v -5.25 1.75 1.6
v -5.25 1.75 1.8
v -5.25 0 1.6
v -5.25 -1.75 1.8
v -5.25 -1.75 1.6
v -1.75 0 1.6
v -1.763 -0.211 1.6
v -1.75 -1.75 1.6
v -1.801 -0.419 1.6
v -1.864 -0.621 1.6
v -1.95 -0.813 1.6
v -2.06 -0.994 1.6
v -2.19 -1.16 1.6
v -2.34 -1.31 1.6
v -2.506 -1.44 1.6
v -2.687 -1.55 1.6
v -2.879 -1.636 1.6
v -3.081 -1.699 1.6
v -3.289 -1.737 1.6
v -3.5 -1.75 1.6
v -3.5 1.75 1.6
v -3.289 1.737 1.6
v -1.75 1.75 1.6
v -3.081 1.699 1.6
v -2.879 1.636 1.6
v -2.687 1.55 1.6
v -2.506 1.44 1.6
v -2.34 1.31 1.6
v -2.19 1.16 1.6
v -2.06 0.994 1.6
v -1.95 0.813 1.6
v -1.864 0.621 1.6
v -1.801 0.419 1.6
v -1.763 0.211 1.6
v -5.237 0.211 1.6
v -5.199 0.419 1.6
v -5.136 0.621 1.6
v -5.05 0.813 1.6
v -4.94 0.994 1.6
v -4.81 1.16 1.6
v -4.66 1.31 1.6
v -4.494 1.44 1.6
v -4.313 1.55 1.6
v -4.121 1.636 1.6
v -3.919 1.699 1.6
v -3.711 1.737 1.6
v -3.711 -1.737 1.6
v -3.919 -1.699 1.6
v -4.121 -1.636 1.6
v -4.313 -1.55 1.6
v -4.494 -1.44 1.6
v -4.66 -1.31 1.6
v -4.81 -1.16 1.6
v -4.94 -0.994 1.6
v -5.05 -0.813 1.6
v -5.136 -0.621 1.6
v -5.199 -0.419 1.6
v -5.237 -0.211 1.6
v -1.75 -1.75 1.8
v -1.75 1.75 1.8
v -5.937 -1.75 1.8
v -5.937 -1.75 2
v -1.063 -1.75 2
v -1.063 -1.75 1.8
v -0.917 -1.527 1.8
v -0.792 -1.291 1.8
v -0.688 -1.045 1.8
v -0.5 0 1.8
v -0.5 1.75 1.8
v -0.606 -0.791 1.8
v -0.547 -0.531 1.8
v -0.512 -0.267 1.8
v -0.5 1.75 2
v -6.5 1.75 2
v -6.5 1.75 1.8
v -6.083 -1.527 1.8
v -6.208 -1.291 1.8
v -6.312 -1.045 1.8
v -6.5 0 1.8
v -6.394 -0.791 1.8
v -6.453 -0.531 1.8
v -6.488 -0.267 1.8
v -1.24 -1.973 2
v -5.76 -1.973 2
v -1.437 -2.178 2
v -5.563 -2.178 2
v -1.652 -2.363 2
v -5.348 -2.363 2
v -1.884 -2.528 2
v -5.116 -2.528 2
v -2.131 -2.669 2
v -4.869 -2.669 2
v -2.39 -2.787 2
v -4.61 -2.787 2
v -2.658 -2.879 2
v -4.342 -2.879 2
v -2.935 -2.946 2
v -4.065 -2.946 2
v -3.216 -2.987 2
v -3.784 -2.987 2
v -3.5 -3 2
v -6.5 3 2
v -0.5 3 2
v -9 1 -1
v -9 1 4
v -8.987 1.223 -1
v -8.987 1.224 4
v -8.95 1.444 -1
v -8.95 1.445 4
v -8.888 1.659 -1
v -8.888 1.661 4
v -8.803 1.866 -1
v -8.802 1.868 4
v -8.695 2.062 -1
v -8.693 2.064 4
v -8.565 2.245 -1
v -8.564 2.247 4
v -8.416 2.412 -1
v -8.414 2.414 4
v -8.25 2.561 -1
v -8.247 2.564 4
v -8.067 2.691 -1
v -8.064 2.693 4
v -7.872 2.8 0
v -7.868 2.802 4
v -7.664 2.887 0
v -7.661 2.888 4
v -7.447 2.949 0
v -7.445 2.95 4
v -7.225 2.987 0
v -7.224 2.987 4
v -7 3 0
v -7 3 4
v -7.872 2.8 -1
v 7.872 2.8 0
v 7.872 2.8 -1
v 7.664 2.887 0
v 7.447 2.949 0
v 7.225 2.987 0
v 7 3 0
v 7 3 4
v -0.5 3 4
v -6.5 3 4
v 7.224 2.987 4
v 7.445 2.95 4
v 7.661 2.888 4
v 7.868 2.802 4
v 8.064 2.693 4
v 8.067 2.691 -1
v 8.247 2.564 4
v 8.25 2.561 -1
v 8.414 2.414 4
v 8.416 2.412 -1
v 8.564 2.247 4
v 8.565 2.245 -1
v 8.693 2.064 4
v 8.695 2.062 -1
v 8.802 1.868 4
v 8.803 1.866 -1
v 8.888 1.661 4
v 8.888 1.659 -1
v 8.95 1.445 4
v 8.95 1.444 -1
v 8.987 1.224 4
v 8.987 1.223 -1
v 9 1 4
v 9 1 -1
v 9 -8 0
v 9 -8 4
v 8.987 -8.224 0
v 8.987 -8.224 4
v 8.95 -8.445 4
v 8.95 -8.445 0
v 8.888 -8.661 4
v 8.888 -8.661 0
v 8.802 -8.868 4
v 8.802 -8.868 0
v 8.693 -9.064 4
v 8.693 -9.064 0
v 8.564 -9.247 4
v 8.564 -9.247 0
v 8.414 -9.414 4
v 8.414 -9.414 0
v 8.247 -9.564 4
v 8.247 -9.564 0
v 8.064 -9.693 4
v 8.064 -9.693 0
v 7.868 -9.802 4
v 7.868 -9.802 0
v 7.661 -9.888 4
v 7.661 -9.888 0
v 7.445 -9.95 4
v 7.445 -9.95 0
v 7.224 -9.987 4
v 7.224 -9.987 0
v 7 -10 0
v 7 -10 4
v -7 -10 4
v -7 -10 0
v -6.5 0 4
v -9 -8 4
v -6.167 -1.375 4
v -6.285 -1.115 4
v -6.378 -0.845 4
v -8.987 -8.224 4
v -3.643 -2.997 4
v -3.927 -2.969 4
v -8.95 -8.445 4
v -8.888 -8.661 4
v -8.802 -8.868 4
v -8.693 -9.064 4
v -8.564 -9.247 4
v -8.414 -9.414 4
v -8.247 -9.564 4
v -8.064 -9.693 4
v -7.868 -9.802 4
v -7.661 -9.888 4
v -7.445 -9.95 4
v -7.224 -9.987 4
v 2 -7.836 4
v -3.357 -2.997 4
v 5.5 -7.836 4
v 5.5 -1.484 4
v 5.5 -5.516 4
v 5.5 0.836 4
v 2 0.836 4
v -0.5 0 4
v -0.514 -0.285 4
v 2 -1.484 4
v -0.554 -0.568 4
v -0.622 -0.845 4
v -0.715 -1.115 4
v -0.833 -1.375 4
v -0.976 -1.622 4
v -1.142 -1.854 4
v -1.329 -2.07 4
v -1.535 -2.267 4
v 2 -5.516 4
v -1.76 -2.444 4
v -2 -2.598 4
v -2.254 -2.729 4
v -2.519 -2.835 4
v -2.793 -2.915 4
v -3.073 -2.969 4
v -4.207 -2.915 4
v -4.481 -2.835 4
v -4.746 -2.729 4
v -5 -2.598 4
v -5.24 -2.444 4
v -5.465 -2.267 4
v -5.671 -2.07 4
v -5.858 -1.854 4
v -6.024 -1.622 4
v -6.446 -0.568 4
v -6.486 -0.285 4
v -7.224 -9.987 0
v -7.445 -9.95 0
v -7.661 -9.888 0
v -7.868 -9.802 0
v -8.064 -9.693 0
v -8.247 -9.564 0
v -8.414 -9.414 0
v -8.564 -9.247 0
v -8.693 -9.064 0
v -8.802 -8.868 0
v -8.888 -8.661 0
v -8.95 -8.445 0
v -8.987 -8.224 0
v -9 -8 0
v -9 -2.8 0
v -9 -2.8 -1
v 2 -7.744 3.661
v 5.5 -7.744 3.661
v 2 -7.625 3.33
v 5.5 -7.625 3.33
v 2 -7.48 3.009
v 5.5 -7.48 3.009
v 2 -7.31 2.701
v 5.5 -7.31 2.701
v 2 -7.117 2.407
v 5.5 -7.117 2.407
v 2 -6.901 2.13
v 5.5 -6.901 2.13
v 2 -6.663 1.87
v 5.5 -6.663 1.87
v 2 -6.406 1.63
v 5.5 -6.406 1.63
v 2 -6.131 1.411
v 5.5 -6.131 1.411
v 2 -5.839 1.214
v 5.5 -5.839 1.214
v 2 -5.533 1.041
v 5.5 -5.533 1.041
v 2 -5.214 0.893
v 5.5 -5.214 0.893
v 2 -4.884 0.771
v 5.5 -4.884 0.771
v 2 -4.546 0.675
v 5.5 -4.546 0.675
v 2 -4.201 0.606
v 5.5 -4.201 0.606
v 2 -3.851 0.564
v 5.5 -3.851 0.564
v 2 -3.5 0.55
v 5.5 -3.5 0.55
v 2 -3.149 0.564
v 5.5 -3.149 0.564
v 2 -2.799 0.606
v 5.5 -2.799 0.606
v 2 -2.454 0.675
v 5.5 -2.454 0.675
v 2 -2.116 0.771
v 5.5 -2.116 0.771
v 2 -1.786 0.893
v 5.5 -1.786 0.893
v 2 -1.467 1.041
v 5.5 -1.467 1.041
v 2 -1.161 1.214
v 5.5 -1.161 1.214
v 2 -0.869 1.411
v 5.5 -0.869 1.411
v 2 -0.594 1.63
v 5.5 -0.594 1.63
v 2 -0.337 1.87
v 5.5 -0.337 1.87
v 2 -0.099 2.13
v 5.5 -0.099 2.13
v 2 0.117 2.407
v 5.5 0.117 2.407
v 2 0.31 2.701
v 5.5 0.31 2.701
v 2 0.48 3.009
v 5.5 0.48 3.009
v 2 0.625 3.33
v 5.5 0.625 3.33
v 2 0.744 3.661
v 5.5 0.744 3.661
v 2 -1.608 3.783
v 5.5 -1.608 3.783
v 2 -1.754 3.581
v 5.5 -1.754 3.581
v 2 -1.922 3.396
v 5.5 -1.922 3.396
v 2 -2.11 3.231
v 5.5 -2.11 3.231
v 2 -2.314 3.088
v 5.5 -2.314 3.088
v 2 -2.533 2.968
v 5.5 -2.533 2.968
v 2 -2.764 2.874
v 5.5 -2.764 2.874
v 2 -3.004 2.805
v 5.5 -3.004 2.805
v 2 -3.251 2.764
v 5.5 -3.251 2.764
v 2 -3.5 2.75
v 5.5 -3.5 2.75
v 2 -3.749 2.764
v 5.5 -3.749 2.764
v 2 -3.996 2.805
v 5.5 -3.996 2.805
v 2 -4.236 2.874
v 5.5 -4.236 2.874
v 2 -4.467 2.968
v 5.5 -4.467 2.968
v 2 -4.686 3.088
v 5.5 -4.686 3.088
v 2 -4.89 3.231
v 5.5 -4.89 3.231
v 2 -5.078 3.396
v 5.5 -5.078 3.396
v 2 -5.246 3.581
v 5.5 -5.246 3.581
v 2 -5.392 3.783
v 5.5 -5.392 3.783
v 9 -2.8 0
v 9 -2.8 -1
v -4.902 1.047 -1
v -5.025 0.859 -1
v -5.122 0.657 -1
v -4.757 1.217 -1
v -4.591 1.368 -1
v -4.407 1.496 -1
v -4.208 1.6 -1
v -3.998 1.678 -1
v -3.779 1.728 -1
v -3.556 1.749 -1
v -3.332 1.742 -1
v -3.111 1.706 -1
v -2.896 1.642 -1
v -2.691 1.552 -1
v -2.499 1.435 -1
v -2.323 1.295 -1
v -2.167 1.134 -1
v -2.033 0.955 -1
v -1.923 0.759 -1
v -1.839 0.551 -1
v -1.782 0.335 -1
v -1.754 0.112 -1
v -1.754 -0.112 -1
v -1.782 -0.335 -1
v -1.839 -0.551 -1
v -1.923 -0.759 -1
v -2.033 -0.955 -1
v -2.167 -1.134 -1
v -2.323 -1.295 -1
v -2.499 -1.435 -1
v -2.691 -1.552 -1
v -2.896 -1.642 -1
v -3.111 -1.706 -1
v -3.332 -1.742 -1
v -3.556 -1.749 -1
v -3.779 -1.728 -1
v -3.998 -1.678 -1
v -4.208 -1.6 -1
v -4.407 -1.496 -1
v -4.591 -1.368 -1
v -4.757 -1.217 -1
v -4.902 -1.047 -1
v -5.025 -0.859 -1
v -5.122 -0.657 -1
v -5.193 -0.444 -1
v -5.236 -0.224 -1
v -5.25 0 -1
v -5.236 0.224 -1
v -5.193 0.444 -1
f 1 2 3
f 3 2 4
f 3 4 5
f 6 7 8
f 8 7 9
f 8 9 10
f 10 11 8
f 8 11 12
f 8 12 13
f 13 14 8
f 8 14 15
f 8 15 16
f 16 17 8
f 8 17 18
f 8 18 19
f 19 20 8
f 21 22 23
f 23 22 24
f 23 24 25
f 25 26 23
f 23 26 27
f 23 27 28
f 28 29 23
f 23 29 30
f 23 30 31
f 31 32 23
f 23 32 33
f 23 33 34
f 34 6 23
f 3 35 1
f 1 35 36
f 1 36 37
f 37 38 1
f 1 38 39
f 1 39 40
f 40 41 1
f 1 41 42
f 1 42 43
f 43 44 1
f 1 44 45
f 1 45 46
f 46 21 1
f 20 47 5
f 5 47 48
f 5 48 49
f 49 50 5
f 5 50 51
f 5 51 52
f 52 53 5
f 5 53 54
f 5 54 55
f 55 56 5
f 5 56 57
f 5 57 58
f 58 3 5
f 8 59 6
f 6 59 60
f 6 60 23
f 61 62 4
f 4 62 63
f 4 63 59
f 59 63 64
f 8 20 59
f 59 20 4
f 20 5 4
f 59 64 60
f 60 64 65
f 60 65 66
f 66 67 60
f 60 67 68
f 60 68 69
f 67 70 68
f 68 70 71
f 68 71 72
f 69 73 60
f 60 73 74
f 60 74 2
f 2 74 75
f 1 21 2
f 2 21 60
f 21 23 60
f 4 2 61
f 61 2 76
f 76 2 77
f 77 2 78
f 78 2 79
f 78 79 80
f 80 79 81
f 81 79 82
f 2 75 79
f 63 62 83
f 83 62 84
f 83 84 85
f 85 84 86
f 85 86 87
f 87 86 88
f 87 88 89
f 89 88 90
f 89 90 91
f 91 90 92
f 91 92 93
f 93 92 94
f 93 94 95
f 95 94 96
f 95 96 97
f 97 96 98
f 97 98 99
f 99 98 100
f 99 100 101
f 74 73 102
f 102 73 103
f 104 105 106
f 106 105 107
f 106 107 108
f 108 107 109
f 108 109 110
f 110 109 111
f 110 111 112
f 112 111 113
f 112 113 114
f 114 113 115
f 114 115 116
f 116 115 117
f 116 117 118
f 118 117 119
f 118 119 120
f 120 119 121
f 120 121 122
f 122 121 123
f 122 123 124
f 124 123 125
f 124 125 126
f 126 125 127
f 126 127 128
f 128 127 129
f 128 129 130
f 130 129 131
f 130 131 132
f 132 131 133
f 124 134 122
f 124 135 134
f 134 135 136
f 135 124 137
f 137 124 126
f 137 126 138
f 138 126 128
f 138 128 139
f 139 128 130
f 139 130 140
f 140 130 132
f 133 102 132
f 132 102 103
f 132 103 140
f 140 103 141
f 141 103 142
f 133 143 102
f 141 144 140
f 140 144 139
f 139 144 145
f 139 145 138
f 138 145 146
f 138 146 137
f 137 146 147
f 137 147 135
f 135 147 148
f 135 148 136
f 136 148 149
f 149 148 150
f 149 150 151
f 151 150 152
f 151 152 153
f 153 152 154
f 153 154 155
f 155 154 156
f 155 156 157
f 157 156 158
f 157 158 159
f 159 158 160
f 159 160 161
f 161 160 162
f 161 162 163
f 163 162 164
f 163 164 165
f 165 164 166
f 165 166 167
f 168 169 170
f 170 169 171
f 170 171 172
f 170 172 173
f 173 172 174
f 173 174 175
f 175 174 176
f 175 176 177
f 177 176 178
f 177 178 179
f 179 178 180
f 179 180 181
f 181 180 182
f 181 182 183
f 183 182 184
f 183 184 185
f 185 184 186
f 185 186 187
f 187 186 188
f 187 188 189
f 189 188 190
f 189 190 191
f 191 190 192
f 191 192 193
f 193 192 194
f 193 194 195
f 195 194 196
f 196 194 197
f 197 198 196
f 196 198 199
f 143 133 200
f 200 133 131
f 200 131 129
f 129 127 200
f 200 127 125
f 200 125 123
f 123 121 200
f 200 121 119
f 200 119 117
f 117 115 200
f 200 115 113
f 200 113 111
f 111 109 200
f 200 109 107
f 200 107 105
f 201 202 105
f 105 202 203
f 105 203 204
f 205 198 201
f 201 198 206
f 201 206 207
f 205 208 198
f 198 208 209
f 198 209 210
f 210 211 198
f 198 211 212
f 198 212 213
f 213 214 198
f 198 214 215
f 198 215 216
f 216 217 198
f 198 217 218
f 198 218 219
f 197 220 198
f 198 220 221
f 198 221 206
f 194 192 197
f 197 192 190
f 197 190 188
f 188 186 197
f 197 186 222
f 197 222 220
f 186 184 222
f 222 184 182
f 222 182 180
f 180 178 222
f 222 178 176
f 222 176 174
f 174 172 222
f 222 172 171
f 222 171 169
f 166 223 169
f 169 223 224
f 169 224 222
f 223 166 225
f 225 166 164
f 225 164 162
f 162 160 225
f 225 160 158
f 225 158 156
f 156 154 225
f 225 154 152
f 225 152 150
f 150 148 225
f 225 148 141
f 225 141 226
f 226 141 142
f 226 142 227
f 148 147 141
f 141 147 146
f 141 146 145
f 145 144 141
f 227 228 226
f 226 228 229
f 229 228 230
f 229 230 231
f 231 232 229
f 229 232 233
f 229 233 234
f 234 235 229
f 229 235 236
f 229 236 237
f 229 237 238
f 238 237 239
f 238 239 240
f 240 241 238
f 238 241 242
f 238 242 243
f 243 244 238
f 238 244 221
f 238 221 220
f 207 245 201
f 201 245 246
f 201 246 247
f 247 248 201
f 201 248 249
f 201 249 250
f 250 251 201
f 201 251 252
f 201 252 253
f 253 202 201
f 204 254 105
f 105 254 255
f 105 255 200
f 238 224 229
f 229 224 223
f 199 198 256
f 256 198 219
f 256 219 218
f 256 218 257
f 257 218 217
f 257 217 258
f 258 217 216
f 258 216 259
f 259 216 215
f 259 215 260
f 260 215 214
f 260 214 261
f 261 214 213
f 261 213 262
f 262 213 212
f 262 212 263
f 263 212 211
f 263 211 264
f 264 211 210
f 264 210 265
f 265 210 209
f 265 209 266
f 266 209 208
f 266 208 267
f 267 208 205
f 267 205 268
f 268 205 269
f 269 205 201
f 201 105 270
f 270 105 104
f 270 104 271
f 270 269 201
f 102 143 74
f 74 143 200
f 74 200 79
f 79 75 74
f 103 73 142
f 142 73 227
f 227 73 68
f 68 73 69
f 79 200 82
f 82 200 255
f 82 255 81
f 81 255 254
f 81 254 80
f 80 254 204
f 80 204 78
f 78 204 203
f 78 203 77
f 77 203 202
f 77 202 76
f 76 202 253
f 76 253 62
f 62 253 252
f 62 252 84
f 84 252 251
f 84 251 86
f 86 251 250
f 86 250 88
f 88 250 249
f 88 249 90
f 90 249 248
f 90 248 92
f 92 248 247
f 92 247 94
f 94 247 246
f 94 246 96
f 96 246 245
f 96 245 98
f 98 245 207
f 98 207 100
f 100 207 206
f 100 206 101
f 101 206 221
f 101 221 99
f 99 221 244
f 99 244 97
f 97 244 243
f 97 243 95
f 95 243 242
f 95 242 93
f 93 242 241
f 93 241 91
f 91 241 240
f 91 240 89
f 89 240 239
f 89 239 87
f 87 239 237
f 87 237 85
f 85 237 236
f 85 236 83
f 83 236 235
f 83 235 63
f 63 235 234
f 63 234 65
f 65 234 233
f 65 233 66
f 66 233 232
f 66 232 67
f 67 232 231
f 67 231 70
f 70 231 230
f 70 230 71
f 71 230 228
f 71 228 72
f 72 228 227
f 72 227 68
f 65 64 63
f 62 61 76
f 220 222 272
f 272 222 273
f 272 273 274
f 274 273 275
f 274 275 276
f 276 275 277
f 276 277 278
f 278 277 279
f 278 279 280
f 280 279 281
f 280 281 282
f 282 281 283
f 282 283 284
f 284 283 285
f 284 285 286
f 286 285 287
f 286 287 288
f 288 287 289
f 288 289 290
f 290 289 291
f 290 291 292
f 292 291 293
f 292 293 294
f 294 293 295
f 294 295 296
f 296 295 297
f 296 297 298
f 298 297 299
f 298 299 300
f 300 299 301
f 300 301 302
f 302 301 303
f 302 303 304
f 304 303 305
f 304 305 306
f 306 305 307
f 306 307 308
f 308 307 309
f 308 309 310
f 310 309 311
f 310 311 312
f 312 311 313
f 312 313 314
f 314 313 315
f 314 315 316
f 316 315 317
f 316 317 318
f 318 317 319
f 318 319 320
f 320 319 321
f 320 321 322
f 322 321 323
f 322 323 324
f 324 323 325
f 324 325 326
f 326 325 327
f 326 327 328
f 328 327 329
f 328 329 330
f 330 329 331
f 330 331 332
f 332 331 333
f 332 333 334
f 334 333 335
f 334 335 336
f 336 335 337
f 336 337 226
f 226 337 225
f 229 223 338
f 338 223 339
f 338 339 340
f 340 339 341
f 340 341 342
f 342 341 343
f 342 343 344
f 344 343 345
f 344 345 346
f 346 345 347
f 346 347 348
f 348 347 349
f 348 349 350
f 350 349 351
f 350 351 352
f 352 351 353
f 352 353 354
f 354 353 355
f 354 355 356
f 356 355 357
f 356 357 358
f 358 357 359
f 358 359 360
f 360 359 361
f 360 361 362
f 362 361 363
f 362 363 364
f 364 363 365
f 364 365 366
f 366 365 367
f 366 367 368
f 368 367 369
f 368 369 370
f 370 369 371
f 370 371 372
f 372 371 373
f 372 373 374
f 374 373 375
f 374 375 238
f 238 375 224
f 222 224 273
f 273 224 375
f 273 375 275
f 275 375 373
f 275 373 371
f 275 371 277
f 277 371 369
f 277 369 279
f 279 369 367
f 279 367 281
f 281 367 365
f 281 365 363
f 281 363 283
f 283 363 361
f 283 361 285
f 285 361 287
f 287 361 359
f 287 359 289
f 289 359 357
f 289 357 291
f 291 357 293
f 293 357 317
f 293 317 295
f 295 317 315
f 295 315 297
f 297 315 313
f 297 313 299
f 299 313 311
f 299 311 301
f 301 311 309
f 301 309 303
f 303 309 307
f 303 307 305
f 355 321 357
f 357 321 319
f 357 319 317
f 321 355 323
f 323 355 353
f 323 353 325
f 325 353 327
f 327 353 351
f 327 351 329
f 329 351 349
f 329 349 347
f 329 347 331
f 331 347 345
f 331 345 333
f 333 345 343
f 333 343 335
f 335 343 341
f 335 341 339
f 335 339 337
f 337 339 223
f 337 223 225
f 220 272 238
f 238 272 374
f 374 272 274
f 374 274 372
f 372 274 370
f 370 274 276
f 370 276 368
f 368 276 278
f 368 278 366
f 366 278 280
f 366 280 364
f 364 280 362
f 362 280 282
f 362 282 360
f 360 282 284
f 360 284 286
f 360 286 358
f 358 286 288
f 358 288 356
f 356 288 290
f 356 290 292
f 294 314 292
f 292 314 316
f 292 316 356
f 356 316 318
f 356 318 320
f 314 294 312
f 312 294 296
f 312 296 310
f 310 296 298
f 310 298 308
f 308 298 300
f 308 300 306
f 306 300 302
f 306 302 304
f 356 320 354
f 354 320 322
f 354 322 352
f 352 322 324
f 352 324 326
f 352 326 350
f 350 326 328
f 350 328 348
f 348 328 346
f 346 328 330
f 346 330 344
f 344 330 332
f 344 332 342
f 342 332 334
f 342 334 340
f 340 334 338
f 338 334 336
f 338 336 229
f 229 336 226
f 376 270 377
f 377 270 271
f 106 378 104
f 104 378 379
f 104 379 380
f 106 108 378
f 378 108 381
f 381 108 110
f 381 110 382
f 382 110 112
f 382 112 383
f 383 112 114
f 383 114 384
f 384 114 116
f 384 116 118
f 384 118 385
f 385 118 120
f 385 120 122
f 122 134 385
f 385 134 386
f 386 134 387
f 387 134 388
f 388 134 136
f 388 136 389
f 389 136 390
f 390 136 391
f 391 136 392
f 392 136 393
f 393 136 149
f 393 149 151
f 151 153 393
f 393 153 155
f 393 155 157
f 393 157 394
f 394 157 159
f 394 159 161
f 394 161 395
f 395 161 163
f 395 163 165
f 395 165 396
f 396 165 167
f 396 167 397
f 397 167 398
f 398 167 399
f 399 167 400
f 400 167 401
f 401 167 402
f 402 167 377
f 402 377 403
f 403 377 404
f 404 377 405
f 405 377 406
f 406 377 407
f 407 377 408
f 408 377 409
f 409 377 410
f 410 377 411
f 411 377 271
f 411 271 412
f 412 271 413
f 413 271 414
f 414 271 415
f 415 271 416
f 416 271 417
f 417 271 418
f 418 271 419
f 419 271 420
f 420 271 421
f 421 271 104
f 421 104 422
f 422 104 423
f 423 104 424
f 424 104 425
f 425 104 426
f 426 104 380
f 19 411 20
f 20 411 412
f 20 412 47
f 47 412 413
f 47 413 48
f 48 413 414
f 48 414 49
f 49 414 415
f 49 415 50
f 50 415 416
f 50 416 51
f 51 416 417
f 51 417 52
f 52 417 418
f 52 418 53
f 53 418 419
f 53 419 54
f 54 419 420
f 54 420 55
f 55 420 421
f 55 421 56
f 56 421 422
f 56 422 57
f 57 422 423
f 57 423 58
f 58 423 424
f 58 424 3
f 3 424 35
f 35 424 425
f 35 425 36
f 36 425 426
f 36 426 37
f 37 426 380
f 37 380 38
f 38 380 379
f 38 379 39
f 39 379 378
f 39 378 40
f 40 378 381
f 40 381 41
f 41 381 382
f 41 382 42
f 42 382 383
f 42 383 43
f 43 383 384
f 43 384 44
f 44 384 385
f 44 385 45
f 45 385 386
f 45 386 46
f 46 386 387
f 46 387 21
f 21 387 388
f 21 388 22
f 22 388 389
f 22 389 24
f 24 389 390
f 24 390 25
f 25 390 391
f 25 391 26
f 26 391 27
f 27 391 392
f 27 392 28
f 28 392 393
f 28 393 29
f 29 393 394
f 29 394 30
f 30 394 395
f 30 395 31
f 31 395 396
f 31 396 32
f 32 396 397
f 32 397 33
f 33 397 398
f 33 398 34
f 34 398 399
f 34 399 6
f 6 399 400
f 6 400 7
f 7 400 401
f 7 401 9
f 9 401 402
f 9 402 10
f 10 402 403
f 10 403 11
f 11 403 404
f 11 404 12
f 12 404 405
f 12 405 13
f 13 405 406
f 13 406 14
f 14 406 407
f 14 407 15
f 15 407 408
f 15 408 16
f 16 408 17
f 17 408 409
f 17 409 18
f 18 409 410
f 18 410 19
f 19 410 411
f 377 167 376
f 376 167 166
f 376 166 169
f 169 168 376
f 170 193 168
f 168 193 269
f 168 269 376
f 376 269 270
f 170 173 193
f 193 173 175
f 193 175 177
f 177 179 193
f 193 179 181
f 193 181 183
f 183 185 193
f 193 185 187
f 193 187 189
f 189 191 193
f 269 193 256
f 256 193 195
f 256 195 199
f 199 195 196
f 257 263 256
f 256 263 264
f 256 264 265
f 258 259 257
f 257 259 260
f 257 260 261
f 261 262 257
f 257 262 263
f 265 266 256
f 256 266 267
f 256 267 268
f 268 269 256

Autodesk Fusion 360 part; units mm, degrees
sketch "Sketch1" plane through (0, 0, 0) normal (0, 0, 1) x (1, 0, 0)
  line L0 (9, 3) -> (-9, 3)
  line L1 (-9, 3) -> (-9, -10)
  line L2 (-9, -10) -> (9, -10)
  line L3 (9, -10) -> (9, 3)
  circle A0 centre (-3.5, 0) radius 1.75
  circle A1 centre (-3.5, 0) radius 3
  line L4 (9, -2.8) -> (-9, -2.8)
  line L5 (-9, -2.8) -> (-9, 2.8)
  line L6 (-9, 2.8) -> (9, 2.8)
  line L7 (9, 2.8) -> (9, -2.8)
  line L8 (9, -2.8) -> (-9, 2.8) construction
  line L9 (-9, -2.8) -> (9, 2.8) construction
  dimension "d1" = 18
  dimension "d2" = 13
  dimension "d5" = 3.5
  dimension "d6" = 6
  dimension "d9" = 5.6
  dimension "d12" = 3.5
  dimension "d23" = 3
extrude "Extrude1" add sketch "Sketch1" along normal blind 2
extrude "Extrude2" add sketch "Sketch1" along normal blind 4 contours L0 L3 A1 L6 | L0 L1 A1 L6 | L3 A1 L4 L6 L7 | L1 A1 L4 L5 L6 | L1 L2 L3 A1 L4
extrude "Extrude3" add sketch "Sketch1" against normal blind 1 contours L3 A1 L4 L6 L7 | A1 L4 L6 | L1 A1 L4 L5 L6
sketch "Sketch2" plane through (9, 0, 0) normal (1, 0, 0) x (0, 1, 0)
  line L0 (-10, 0) -> (-2.8, 0)
  line L1 (-2.8, 0) -> (-2.8, -1)
  line L2 (-2.8, -1) -> (2.8, -1)
  line L3 (2.8, -1) -> (2.8, 0)
  line L4 (2.8, 0) -> (3, 0)
  line L5 (3, 0) -> (3, 4)
  line L6 (3, 4) -> (-10, 4)
  line L7 (-10, 4) -> (-10, 0)
  circle A0 centre (-3.5, 5) radius 2.25
  circle A1 centre (-3.5, 5) radius 4.45
  line L8 (-10, 0) -> (3, 0)
  line L9 (-3.5, 4) -> (-3.5, 5) construction
  dimension "d13" = 4.5
  dimension "d14" = 2.2
  dimension "d18" = 5
extrude "Extrude4" cut sketch "Sketch2" against normal blind 3.5 from surface at -3.5 contours L6 A0 A1 picked at (-3.7762, 1.3019)
sketch "Sketch3" plane through (0, 0, 4) normal (0, 0, 1) x (-1, 0, 0)
  line L0 (-2, 5.5156) -> (-5.5, 5.5156)
  line L1 (-5.5, 5.5156) -> (-5.5, 7.8362)
  line L2 (-5.5, 7.8362) -> (-2, 7.8362)
  line L3 (-2, 7.8362) -> (-2, 5.5156)
  line L4 (-5.5, 1.4844) -> (-2, 1.4844)
  line L5 (-2, 1.4844) -> (-2, -0.8362)
  line L6 (-2, -0.8362) -> (-5.5, -0.8362)
  line L7 (-5.5, -0.8362) -> (-5.5, 1.4844)
  line L8 (-9, 10) -> (-9, -3)
  line L9 (-9, -3) -> (3.5, -3)
  circle A0 centre (3.5, 0) radius 3
  line L10 (3.5, -3) -> (9, -3)
  line L11 (9, -3) -> (9, 10)
  line L12 (9, 10) -> (-9, 10)
  line L13 (0.5, 0) -> (0.5, -5.3952)
  arc A1 (0.5, -5.3952) -> (6.5, -5.3952) centre (3.5, -5.3952) ccw
  line L14 (6.5, -5.3952) -> (6.5, 0)
  arc A2 (6.5, 0) -> (0.5, 0) centre (3.5, 0) ccw
  line L15 (3.5, 0) -> (3.5, -5.3952) construction
extrude "Extrude5" cut sketch "Sketch3" against normal up to surface (2 mm away) contours L9 A0 L13 | A0 L10 L14
fillet "Fillet1" radius 2 4 edges at (-9, -10, 2) (9, -10, 2) (9, 3, 2) (-9, 3, 2)
sketch "Sketch4" plane through (0, 0, 2) normal (0, 0, 1) x (-1, 0, 0)
  arc A0 (6.5, 0) -> (0.5, 0) centre (3.5, 0) ccw
  line L0 (0.5, 0) -> (0.5, -3)
  line L1 (0.5, -3) -> (6.5, -3)
  line L2 (6.5, -3) -> (6.5, 0)
  circle A1 centre (3.5, 0) radius 1.75 construction
  line L3 (0.5, -1.75) -> (6.5, -1.75)
  line L4 (5.25, -1.75) -> (5.25, 1.75)
  line L5 (5.9367, 1.75) -> (1.0633, 1.75)
  line L6 (1.75, 1.75) -> (1.75, -1.75)
  line L7 (1.75, -1.75) -> (5.25, 1.75) construction
  line L8 (5.25, -1.75) -> (1.75, 1.75) construction
  point P0 (3.5, 0)
extrude "Extrude6" cut sketch "Sketch4" against normal blind 0.2 contours A0 L2 L3 L4 L5 | A0 L0 L3 L5 L6 | L3 L4 L5 L6
extrude "Extrude7" cut sketch "Sketch4" against normal blind 0.4 contours L3 L4 L5 L6
